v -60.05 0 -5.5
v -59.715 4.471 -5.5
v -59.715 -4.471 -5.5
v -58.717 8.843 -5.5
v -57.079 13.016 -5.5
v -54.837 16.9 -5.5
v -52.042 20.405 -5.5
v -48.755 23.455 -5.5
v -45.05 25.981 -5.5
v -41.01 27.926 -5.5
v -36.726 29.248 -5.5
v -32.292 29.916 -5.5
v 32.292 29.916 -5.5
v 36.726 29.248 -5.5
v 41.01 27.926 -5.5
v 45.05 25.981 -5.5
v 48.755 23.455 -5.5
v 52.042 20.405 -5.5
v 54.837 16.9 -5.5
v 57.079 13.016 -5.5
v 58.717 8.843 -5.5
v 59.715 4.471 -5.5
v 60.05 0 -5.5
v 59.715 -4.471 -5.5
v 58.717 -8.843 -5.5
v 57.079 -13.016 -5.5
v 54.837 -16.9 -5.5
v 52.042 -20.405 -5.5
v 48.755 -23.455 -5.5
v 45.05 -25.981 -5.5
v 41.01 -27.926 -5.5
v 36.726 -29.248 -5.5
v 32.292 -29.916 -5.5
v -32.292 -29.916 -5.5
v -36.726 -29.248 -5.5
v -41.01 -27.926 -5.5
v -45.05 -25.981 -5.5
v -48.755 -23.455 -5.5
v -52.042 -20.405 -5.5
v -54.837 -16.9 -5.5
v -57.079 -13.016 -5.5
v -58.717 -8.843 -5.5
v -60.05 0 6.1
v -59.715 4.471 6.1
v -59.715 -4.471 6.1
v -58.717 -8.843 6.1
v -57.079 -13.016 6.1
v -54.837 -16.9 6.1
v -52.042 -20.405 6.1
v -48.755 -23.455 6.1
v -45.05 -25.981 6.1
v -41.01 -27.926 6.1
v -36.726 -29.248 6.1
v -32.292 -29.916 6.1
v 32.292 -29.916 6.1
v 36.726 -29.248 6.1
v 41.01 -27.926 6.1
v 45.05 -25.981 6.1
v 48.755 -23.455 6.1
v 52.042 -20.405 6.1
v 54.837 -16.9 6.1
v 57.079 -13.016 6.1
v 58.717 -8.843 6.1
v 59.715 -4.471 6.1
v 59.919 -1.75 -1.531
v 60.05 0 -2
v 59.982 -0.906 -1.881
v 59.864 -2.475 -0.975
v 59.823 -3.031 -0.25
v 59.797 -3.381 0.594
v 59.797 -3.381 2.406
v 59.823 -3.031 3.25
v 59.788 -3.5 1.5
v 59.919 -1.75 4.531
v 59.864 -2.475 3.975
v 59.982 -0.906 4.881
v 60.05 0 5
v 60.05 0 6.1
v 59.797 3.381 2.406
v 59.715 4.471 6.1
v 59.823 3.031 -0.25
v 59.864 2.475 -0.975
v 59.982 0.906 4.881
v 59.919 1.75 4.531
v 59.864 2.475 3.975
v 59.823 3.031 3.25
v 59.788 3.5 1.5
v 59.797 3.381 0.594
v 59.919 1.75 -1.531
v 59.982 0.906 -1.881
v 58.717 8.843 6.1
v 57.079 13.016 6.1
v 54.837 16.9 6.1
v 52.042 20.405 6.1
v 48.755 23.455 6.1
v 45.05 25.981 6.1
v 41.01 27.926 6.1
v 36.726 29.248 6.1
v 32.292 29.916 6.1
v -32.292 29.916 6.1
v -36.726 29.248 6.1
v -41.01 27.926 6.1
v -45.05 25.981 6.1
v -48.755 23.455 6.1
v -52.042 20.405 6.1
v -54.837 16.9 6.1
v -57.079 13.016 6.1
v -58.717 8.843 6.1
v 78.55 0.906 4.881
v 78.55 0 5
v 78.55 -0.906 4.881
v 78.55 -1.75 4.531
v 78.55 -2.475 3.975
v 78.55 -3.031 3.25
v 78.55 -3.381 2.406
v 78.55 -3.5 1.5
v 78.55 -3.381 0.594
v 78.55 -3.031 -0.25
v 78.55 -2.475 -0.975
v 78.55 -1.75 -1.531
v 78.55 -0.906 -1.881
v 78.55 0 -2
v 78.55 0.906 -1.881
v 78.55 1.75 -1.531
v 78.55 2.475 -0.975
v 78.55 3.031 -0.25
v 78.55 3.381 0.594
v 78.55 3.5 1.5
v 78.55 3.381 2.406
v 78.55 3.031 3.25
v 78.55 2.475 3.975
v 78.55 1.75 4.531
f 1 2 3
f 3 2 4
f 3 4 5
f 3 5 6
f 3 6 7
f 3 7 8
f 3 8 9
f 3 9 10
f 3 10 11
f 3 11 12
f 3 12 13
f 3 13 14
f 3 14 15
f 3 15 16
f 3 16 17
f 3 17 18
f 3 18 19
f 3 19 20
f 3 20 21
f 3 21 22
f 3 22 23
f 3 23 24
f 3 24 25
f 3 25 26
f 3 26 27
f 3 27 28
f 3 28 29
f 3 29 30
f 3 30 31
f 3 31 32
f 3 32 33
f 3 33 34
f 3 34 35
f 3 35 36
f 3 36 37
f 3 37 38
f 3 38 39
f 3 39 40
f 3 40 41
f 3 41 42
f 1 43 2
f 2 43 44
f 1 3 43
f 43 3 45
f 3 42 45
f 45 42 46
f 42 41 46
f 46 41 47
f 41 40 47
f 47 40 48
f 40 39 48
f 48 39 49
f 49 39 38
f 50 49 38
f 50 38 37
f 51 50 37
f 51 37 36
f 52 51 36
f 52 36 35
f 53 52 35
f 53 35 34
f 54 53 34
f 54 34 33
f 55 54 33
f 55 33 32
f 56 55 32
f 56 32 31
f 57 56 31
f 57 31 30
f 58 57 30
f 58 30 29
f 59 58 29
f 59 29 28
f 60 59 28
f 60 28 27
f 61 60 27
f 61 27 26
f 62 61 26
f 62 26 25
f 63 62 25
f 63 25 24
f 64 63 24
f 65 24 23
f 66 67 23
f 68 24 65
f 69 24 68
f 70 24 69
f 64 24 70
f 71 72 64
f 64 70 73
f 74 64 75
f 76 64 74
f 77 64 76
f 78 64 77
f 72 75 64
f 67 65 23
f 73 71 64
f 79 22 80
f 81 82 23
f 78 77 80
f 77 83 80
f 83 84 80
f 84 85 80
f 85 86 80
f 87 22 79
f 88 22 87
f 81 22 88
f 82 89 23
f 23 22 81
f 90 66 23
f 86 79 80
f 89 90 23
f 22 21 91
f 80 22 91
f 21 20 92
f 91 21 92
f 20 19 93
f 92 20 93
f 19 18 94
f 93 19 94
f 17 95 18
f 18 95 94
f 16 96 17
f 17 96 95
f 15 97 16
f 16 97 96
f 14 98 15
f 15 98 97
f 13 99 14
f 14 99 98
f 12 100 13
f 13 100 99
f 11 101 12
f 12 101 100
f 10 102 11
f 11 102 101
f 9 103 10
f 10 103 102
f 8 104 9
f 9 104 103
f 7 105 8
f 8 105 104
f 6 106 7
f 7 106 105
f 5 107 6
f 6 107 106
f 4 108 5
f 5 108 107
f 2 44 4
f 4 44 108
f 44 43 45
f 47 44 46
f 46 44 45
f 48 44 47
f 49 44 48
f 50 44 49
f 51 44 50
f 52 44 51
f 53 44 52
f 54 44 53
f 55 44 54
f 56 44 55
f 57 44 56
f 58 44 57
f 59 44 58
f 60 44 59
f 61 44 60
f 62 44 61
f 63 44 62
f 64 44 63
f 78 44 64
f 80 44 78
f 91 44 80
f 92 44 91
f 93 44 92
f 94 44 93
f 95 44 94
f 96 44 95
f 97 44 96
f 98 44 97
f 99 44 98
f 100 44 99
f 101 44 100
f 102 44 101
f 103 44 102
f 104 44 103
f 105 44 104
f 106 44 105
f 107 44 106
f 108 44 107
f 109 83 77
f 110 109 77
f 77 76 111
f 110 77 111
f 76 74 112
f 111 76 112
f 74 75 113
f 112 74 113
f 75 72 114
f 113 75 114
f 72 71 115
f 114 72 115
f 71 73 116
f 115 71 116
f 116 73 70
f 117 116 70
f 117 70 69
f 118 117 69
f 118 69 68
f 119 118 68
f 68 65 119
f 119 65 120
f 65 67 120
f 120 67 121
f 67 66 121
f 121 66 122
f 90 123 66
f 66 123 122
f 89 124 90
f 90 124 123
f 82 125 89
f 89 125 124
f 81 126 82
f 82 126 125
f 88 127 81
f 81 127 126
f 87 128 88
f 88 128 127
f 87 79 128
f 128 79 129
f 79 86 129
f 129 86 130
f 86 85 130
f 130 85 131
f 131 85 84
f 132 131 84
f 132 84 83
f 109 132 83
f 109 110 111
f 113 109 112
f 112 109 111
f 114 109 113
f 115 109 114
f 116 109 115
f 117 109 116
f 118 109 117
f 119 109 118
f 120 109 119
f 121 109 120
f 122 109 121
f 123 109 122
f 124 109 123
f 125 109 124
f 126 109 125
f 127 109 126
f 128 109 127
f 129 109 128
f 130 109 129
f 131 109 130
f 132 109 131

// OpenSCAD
module dt900()
{
  dt900_end_to_end = 120.1;
  dt900_width = 60;
  dt900_thickness = 11;
  dt900_charge_diam = 7;
  dt900_charge_offset = 1.5;
  dt900_charge_length = 18.5;

  extra_front = 0.6;

  // main body
  hull()
  {
    for(i=[-1,+1])
    translate([i*(dt900_end_to_end-dt900_width)/2, 0, extra_front/2])
    cylinder(r=dt900_width/2, h=dt900_thickness+extra_front, $fn=42, center=true);
  }

  // charger (on right)
  translate([0, 0, dt900_charge_offset])
  rotate([0, 90, 0])
  cylinder(r=dt900_charge_diam/2, h=dt900_charge_length+dt900_end_to_end/2, $fn=24);
}

dt900();
